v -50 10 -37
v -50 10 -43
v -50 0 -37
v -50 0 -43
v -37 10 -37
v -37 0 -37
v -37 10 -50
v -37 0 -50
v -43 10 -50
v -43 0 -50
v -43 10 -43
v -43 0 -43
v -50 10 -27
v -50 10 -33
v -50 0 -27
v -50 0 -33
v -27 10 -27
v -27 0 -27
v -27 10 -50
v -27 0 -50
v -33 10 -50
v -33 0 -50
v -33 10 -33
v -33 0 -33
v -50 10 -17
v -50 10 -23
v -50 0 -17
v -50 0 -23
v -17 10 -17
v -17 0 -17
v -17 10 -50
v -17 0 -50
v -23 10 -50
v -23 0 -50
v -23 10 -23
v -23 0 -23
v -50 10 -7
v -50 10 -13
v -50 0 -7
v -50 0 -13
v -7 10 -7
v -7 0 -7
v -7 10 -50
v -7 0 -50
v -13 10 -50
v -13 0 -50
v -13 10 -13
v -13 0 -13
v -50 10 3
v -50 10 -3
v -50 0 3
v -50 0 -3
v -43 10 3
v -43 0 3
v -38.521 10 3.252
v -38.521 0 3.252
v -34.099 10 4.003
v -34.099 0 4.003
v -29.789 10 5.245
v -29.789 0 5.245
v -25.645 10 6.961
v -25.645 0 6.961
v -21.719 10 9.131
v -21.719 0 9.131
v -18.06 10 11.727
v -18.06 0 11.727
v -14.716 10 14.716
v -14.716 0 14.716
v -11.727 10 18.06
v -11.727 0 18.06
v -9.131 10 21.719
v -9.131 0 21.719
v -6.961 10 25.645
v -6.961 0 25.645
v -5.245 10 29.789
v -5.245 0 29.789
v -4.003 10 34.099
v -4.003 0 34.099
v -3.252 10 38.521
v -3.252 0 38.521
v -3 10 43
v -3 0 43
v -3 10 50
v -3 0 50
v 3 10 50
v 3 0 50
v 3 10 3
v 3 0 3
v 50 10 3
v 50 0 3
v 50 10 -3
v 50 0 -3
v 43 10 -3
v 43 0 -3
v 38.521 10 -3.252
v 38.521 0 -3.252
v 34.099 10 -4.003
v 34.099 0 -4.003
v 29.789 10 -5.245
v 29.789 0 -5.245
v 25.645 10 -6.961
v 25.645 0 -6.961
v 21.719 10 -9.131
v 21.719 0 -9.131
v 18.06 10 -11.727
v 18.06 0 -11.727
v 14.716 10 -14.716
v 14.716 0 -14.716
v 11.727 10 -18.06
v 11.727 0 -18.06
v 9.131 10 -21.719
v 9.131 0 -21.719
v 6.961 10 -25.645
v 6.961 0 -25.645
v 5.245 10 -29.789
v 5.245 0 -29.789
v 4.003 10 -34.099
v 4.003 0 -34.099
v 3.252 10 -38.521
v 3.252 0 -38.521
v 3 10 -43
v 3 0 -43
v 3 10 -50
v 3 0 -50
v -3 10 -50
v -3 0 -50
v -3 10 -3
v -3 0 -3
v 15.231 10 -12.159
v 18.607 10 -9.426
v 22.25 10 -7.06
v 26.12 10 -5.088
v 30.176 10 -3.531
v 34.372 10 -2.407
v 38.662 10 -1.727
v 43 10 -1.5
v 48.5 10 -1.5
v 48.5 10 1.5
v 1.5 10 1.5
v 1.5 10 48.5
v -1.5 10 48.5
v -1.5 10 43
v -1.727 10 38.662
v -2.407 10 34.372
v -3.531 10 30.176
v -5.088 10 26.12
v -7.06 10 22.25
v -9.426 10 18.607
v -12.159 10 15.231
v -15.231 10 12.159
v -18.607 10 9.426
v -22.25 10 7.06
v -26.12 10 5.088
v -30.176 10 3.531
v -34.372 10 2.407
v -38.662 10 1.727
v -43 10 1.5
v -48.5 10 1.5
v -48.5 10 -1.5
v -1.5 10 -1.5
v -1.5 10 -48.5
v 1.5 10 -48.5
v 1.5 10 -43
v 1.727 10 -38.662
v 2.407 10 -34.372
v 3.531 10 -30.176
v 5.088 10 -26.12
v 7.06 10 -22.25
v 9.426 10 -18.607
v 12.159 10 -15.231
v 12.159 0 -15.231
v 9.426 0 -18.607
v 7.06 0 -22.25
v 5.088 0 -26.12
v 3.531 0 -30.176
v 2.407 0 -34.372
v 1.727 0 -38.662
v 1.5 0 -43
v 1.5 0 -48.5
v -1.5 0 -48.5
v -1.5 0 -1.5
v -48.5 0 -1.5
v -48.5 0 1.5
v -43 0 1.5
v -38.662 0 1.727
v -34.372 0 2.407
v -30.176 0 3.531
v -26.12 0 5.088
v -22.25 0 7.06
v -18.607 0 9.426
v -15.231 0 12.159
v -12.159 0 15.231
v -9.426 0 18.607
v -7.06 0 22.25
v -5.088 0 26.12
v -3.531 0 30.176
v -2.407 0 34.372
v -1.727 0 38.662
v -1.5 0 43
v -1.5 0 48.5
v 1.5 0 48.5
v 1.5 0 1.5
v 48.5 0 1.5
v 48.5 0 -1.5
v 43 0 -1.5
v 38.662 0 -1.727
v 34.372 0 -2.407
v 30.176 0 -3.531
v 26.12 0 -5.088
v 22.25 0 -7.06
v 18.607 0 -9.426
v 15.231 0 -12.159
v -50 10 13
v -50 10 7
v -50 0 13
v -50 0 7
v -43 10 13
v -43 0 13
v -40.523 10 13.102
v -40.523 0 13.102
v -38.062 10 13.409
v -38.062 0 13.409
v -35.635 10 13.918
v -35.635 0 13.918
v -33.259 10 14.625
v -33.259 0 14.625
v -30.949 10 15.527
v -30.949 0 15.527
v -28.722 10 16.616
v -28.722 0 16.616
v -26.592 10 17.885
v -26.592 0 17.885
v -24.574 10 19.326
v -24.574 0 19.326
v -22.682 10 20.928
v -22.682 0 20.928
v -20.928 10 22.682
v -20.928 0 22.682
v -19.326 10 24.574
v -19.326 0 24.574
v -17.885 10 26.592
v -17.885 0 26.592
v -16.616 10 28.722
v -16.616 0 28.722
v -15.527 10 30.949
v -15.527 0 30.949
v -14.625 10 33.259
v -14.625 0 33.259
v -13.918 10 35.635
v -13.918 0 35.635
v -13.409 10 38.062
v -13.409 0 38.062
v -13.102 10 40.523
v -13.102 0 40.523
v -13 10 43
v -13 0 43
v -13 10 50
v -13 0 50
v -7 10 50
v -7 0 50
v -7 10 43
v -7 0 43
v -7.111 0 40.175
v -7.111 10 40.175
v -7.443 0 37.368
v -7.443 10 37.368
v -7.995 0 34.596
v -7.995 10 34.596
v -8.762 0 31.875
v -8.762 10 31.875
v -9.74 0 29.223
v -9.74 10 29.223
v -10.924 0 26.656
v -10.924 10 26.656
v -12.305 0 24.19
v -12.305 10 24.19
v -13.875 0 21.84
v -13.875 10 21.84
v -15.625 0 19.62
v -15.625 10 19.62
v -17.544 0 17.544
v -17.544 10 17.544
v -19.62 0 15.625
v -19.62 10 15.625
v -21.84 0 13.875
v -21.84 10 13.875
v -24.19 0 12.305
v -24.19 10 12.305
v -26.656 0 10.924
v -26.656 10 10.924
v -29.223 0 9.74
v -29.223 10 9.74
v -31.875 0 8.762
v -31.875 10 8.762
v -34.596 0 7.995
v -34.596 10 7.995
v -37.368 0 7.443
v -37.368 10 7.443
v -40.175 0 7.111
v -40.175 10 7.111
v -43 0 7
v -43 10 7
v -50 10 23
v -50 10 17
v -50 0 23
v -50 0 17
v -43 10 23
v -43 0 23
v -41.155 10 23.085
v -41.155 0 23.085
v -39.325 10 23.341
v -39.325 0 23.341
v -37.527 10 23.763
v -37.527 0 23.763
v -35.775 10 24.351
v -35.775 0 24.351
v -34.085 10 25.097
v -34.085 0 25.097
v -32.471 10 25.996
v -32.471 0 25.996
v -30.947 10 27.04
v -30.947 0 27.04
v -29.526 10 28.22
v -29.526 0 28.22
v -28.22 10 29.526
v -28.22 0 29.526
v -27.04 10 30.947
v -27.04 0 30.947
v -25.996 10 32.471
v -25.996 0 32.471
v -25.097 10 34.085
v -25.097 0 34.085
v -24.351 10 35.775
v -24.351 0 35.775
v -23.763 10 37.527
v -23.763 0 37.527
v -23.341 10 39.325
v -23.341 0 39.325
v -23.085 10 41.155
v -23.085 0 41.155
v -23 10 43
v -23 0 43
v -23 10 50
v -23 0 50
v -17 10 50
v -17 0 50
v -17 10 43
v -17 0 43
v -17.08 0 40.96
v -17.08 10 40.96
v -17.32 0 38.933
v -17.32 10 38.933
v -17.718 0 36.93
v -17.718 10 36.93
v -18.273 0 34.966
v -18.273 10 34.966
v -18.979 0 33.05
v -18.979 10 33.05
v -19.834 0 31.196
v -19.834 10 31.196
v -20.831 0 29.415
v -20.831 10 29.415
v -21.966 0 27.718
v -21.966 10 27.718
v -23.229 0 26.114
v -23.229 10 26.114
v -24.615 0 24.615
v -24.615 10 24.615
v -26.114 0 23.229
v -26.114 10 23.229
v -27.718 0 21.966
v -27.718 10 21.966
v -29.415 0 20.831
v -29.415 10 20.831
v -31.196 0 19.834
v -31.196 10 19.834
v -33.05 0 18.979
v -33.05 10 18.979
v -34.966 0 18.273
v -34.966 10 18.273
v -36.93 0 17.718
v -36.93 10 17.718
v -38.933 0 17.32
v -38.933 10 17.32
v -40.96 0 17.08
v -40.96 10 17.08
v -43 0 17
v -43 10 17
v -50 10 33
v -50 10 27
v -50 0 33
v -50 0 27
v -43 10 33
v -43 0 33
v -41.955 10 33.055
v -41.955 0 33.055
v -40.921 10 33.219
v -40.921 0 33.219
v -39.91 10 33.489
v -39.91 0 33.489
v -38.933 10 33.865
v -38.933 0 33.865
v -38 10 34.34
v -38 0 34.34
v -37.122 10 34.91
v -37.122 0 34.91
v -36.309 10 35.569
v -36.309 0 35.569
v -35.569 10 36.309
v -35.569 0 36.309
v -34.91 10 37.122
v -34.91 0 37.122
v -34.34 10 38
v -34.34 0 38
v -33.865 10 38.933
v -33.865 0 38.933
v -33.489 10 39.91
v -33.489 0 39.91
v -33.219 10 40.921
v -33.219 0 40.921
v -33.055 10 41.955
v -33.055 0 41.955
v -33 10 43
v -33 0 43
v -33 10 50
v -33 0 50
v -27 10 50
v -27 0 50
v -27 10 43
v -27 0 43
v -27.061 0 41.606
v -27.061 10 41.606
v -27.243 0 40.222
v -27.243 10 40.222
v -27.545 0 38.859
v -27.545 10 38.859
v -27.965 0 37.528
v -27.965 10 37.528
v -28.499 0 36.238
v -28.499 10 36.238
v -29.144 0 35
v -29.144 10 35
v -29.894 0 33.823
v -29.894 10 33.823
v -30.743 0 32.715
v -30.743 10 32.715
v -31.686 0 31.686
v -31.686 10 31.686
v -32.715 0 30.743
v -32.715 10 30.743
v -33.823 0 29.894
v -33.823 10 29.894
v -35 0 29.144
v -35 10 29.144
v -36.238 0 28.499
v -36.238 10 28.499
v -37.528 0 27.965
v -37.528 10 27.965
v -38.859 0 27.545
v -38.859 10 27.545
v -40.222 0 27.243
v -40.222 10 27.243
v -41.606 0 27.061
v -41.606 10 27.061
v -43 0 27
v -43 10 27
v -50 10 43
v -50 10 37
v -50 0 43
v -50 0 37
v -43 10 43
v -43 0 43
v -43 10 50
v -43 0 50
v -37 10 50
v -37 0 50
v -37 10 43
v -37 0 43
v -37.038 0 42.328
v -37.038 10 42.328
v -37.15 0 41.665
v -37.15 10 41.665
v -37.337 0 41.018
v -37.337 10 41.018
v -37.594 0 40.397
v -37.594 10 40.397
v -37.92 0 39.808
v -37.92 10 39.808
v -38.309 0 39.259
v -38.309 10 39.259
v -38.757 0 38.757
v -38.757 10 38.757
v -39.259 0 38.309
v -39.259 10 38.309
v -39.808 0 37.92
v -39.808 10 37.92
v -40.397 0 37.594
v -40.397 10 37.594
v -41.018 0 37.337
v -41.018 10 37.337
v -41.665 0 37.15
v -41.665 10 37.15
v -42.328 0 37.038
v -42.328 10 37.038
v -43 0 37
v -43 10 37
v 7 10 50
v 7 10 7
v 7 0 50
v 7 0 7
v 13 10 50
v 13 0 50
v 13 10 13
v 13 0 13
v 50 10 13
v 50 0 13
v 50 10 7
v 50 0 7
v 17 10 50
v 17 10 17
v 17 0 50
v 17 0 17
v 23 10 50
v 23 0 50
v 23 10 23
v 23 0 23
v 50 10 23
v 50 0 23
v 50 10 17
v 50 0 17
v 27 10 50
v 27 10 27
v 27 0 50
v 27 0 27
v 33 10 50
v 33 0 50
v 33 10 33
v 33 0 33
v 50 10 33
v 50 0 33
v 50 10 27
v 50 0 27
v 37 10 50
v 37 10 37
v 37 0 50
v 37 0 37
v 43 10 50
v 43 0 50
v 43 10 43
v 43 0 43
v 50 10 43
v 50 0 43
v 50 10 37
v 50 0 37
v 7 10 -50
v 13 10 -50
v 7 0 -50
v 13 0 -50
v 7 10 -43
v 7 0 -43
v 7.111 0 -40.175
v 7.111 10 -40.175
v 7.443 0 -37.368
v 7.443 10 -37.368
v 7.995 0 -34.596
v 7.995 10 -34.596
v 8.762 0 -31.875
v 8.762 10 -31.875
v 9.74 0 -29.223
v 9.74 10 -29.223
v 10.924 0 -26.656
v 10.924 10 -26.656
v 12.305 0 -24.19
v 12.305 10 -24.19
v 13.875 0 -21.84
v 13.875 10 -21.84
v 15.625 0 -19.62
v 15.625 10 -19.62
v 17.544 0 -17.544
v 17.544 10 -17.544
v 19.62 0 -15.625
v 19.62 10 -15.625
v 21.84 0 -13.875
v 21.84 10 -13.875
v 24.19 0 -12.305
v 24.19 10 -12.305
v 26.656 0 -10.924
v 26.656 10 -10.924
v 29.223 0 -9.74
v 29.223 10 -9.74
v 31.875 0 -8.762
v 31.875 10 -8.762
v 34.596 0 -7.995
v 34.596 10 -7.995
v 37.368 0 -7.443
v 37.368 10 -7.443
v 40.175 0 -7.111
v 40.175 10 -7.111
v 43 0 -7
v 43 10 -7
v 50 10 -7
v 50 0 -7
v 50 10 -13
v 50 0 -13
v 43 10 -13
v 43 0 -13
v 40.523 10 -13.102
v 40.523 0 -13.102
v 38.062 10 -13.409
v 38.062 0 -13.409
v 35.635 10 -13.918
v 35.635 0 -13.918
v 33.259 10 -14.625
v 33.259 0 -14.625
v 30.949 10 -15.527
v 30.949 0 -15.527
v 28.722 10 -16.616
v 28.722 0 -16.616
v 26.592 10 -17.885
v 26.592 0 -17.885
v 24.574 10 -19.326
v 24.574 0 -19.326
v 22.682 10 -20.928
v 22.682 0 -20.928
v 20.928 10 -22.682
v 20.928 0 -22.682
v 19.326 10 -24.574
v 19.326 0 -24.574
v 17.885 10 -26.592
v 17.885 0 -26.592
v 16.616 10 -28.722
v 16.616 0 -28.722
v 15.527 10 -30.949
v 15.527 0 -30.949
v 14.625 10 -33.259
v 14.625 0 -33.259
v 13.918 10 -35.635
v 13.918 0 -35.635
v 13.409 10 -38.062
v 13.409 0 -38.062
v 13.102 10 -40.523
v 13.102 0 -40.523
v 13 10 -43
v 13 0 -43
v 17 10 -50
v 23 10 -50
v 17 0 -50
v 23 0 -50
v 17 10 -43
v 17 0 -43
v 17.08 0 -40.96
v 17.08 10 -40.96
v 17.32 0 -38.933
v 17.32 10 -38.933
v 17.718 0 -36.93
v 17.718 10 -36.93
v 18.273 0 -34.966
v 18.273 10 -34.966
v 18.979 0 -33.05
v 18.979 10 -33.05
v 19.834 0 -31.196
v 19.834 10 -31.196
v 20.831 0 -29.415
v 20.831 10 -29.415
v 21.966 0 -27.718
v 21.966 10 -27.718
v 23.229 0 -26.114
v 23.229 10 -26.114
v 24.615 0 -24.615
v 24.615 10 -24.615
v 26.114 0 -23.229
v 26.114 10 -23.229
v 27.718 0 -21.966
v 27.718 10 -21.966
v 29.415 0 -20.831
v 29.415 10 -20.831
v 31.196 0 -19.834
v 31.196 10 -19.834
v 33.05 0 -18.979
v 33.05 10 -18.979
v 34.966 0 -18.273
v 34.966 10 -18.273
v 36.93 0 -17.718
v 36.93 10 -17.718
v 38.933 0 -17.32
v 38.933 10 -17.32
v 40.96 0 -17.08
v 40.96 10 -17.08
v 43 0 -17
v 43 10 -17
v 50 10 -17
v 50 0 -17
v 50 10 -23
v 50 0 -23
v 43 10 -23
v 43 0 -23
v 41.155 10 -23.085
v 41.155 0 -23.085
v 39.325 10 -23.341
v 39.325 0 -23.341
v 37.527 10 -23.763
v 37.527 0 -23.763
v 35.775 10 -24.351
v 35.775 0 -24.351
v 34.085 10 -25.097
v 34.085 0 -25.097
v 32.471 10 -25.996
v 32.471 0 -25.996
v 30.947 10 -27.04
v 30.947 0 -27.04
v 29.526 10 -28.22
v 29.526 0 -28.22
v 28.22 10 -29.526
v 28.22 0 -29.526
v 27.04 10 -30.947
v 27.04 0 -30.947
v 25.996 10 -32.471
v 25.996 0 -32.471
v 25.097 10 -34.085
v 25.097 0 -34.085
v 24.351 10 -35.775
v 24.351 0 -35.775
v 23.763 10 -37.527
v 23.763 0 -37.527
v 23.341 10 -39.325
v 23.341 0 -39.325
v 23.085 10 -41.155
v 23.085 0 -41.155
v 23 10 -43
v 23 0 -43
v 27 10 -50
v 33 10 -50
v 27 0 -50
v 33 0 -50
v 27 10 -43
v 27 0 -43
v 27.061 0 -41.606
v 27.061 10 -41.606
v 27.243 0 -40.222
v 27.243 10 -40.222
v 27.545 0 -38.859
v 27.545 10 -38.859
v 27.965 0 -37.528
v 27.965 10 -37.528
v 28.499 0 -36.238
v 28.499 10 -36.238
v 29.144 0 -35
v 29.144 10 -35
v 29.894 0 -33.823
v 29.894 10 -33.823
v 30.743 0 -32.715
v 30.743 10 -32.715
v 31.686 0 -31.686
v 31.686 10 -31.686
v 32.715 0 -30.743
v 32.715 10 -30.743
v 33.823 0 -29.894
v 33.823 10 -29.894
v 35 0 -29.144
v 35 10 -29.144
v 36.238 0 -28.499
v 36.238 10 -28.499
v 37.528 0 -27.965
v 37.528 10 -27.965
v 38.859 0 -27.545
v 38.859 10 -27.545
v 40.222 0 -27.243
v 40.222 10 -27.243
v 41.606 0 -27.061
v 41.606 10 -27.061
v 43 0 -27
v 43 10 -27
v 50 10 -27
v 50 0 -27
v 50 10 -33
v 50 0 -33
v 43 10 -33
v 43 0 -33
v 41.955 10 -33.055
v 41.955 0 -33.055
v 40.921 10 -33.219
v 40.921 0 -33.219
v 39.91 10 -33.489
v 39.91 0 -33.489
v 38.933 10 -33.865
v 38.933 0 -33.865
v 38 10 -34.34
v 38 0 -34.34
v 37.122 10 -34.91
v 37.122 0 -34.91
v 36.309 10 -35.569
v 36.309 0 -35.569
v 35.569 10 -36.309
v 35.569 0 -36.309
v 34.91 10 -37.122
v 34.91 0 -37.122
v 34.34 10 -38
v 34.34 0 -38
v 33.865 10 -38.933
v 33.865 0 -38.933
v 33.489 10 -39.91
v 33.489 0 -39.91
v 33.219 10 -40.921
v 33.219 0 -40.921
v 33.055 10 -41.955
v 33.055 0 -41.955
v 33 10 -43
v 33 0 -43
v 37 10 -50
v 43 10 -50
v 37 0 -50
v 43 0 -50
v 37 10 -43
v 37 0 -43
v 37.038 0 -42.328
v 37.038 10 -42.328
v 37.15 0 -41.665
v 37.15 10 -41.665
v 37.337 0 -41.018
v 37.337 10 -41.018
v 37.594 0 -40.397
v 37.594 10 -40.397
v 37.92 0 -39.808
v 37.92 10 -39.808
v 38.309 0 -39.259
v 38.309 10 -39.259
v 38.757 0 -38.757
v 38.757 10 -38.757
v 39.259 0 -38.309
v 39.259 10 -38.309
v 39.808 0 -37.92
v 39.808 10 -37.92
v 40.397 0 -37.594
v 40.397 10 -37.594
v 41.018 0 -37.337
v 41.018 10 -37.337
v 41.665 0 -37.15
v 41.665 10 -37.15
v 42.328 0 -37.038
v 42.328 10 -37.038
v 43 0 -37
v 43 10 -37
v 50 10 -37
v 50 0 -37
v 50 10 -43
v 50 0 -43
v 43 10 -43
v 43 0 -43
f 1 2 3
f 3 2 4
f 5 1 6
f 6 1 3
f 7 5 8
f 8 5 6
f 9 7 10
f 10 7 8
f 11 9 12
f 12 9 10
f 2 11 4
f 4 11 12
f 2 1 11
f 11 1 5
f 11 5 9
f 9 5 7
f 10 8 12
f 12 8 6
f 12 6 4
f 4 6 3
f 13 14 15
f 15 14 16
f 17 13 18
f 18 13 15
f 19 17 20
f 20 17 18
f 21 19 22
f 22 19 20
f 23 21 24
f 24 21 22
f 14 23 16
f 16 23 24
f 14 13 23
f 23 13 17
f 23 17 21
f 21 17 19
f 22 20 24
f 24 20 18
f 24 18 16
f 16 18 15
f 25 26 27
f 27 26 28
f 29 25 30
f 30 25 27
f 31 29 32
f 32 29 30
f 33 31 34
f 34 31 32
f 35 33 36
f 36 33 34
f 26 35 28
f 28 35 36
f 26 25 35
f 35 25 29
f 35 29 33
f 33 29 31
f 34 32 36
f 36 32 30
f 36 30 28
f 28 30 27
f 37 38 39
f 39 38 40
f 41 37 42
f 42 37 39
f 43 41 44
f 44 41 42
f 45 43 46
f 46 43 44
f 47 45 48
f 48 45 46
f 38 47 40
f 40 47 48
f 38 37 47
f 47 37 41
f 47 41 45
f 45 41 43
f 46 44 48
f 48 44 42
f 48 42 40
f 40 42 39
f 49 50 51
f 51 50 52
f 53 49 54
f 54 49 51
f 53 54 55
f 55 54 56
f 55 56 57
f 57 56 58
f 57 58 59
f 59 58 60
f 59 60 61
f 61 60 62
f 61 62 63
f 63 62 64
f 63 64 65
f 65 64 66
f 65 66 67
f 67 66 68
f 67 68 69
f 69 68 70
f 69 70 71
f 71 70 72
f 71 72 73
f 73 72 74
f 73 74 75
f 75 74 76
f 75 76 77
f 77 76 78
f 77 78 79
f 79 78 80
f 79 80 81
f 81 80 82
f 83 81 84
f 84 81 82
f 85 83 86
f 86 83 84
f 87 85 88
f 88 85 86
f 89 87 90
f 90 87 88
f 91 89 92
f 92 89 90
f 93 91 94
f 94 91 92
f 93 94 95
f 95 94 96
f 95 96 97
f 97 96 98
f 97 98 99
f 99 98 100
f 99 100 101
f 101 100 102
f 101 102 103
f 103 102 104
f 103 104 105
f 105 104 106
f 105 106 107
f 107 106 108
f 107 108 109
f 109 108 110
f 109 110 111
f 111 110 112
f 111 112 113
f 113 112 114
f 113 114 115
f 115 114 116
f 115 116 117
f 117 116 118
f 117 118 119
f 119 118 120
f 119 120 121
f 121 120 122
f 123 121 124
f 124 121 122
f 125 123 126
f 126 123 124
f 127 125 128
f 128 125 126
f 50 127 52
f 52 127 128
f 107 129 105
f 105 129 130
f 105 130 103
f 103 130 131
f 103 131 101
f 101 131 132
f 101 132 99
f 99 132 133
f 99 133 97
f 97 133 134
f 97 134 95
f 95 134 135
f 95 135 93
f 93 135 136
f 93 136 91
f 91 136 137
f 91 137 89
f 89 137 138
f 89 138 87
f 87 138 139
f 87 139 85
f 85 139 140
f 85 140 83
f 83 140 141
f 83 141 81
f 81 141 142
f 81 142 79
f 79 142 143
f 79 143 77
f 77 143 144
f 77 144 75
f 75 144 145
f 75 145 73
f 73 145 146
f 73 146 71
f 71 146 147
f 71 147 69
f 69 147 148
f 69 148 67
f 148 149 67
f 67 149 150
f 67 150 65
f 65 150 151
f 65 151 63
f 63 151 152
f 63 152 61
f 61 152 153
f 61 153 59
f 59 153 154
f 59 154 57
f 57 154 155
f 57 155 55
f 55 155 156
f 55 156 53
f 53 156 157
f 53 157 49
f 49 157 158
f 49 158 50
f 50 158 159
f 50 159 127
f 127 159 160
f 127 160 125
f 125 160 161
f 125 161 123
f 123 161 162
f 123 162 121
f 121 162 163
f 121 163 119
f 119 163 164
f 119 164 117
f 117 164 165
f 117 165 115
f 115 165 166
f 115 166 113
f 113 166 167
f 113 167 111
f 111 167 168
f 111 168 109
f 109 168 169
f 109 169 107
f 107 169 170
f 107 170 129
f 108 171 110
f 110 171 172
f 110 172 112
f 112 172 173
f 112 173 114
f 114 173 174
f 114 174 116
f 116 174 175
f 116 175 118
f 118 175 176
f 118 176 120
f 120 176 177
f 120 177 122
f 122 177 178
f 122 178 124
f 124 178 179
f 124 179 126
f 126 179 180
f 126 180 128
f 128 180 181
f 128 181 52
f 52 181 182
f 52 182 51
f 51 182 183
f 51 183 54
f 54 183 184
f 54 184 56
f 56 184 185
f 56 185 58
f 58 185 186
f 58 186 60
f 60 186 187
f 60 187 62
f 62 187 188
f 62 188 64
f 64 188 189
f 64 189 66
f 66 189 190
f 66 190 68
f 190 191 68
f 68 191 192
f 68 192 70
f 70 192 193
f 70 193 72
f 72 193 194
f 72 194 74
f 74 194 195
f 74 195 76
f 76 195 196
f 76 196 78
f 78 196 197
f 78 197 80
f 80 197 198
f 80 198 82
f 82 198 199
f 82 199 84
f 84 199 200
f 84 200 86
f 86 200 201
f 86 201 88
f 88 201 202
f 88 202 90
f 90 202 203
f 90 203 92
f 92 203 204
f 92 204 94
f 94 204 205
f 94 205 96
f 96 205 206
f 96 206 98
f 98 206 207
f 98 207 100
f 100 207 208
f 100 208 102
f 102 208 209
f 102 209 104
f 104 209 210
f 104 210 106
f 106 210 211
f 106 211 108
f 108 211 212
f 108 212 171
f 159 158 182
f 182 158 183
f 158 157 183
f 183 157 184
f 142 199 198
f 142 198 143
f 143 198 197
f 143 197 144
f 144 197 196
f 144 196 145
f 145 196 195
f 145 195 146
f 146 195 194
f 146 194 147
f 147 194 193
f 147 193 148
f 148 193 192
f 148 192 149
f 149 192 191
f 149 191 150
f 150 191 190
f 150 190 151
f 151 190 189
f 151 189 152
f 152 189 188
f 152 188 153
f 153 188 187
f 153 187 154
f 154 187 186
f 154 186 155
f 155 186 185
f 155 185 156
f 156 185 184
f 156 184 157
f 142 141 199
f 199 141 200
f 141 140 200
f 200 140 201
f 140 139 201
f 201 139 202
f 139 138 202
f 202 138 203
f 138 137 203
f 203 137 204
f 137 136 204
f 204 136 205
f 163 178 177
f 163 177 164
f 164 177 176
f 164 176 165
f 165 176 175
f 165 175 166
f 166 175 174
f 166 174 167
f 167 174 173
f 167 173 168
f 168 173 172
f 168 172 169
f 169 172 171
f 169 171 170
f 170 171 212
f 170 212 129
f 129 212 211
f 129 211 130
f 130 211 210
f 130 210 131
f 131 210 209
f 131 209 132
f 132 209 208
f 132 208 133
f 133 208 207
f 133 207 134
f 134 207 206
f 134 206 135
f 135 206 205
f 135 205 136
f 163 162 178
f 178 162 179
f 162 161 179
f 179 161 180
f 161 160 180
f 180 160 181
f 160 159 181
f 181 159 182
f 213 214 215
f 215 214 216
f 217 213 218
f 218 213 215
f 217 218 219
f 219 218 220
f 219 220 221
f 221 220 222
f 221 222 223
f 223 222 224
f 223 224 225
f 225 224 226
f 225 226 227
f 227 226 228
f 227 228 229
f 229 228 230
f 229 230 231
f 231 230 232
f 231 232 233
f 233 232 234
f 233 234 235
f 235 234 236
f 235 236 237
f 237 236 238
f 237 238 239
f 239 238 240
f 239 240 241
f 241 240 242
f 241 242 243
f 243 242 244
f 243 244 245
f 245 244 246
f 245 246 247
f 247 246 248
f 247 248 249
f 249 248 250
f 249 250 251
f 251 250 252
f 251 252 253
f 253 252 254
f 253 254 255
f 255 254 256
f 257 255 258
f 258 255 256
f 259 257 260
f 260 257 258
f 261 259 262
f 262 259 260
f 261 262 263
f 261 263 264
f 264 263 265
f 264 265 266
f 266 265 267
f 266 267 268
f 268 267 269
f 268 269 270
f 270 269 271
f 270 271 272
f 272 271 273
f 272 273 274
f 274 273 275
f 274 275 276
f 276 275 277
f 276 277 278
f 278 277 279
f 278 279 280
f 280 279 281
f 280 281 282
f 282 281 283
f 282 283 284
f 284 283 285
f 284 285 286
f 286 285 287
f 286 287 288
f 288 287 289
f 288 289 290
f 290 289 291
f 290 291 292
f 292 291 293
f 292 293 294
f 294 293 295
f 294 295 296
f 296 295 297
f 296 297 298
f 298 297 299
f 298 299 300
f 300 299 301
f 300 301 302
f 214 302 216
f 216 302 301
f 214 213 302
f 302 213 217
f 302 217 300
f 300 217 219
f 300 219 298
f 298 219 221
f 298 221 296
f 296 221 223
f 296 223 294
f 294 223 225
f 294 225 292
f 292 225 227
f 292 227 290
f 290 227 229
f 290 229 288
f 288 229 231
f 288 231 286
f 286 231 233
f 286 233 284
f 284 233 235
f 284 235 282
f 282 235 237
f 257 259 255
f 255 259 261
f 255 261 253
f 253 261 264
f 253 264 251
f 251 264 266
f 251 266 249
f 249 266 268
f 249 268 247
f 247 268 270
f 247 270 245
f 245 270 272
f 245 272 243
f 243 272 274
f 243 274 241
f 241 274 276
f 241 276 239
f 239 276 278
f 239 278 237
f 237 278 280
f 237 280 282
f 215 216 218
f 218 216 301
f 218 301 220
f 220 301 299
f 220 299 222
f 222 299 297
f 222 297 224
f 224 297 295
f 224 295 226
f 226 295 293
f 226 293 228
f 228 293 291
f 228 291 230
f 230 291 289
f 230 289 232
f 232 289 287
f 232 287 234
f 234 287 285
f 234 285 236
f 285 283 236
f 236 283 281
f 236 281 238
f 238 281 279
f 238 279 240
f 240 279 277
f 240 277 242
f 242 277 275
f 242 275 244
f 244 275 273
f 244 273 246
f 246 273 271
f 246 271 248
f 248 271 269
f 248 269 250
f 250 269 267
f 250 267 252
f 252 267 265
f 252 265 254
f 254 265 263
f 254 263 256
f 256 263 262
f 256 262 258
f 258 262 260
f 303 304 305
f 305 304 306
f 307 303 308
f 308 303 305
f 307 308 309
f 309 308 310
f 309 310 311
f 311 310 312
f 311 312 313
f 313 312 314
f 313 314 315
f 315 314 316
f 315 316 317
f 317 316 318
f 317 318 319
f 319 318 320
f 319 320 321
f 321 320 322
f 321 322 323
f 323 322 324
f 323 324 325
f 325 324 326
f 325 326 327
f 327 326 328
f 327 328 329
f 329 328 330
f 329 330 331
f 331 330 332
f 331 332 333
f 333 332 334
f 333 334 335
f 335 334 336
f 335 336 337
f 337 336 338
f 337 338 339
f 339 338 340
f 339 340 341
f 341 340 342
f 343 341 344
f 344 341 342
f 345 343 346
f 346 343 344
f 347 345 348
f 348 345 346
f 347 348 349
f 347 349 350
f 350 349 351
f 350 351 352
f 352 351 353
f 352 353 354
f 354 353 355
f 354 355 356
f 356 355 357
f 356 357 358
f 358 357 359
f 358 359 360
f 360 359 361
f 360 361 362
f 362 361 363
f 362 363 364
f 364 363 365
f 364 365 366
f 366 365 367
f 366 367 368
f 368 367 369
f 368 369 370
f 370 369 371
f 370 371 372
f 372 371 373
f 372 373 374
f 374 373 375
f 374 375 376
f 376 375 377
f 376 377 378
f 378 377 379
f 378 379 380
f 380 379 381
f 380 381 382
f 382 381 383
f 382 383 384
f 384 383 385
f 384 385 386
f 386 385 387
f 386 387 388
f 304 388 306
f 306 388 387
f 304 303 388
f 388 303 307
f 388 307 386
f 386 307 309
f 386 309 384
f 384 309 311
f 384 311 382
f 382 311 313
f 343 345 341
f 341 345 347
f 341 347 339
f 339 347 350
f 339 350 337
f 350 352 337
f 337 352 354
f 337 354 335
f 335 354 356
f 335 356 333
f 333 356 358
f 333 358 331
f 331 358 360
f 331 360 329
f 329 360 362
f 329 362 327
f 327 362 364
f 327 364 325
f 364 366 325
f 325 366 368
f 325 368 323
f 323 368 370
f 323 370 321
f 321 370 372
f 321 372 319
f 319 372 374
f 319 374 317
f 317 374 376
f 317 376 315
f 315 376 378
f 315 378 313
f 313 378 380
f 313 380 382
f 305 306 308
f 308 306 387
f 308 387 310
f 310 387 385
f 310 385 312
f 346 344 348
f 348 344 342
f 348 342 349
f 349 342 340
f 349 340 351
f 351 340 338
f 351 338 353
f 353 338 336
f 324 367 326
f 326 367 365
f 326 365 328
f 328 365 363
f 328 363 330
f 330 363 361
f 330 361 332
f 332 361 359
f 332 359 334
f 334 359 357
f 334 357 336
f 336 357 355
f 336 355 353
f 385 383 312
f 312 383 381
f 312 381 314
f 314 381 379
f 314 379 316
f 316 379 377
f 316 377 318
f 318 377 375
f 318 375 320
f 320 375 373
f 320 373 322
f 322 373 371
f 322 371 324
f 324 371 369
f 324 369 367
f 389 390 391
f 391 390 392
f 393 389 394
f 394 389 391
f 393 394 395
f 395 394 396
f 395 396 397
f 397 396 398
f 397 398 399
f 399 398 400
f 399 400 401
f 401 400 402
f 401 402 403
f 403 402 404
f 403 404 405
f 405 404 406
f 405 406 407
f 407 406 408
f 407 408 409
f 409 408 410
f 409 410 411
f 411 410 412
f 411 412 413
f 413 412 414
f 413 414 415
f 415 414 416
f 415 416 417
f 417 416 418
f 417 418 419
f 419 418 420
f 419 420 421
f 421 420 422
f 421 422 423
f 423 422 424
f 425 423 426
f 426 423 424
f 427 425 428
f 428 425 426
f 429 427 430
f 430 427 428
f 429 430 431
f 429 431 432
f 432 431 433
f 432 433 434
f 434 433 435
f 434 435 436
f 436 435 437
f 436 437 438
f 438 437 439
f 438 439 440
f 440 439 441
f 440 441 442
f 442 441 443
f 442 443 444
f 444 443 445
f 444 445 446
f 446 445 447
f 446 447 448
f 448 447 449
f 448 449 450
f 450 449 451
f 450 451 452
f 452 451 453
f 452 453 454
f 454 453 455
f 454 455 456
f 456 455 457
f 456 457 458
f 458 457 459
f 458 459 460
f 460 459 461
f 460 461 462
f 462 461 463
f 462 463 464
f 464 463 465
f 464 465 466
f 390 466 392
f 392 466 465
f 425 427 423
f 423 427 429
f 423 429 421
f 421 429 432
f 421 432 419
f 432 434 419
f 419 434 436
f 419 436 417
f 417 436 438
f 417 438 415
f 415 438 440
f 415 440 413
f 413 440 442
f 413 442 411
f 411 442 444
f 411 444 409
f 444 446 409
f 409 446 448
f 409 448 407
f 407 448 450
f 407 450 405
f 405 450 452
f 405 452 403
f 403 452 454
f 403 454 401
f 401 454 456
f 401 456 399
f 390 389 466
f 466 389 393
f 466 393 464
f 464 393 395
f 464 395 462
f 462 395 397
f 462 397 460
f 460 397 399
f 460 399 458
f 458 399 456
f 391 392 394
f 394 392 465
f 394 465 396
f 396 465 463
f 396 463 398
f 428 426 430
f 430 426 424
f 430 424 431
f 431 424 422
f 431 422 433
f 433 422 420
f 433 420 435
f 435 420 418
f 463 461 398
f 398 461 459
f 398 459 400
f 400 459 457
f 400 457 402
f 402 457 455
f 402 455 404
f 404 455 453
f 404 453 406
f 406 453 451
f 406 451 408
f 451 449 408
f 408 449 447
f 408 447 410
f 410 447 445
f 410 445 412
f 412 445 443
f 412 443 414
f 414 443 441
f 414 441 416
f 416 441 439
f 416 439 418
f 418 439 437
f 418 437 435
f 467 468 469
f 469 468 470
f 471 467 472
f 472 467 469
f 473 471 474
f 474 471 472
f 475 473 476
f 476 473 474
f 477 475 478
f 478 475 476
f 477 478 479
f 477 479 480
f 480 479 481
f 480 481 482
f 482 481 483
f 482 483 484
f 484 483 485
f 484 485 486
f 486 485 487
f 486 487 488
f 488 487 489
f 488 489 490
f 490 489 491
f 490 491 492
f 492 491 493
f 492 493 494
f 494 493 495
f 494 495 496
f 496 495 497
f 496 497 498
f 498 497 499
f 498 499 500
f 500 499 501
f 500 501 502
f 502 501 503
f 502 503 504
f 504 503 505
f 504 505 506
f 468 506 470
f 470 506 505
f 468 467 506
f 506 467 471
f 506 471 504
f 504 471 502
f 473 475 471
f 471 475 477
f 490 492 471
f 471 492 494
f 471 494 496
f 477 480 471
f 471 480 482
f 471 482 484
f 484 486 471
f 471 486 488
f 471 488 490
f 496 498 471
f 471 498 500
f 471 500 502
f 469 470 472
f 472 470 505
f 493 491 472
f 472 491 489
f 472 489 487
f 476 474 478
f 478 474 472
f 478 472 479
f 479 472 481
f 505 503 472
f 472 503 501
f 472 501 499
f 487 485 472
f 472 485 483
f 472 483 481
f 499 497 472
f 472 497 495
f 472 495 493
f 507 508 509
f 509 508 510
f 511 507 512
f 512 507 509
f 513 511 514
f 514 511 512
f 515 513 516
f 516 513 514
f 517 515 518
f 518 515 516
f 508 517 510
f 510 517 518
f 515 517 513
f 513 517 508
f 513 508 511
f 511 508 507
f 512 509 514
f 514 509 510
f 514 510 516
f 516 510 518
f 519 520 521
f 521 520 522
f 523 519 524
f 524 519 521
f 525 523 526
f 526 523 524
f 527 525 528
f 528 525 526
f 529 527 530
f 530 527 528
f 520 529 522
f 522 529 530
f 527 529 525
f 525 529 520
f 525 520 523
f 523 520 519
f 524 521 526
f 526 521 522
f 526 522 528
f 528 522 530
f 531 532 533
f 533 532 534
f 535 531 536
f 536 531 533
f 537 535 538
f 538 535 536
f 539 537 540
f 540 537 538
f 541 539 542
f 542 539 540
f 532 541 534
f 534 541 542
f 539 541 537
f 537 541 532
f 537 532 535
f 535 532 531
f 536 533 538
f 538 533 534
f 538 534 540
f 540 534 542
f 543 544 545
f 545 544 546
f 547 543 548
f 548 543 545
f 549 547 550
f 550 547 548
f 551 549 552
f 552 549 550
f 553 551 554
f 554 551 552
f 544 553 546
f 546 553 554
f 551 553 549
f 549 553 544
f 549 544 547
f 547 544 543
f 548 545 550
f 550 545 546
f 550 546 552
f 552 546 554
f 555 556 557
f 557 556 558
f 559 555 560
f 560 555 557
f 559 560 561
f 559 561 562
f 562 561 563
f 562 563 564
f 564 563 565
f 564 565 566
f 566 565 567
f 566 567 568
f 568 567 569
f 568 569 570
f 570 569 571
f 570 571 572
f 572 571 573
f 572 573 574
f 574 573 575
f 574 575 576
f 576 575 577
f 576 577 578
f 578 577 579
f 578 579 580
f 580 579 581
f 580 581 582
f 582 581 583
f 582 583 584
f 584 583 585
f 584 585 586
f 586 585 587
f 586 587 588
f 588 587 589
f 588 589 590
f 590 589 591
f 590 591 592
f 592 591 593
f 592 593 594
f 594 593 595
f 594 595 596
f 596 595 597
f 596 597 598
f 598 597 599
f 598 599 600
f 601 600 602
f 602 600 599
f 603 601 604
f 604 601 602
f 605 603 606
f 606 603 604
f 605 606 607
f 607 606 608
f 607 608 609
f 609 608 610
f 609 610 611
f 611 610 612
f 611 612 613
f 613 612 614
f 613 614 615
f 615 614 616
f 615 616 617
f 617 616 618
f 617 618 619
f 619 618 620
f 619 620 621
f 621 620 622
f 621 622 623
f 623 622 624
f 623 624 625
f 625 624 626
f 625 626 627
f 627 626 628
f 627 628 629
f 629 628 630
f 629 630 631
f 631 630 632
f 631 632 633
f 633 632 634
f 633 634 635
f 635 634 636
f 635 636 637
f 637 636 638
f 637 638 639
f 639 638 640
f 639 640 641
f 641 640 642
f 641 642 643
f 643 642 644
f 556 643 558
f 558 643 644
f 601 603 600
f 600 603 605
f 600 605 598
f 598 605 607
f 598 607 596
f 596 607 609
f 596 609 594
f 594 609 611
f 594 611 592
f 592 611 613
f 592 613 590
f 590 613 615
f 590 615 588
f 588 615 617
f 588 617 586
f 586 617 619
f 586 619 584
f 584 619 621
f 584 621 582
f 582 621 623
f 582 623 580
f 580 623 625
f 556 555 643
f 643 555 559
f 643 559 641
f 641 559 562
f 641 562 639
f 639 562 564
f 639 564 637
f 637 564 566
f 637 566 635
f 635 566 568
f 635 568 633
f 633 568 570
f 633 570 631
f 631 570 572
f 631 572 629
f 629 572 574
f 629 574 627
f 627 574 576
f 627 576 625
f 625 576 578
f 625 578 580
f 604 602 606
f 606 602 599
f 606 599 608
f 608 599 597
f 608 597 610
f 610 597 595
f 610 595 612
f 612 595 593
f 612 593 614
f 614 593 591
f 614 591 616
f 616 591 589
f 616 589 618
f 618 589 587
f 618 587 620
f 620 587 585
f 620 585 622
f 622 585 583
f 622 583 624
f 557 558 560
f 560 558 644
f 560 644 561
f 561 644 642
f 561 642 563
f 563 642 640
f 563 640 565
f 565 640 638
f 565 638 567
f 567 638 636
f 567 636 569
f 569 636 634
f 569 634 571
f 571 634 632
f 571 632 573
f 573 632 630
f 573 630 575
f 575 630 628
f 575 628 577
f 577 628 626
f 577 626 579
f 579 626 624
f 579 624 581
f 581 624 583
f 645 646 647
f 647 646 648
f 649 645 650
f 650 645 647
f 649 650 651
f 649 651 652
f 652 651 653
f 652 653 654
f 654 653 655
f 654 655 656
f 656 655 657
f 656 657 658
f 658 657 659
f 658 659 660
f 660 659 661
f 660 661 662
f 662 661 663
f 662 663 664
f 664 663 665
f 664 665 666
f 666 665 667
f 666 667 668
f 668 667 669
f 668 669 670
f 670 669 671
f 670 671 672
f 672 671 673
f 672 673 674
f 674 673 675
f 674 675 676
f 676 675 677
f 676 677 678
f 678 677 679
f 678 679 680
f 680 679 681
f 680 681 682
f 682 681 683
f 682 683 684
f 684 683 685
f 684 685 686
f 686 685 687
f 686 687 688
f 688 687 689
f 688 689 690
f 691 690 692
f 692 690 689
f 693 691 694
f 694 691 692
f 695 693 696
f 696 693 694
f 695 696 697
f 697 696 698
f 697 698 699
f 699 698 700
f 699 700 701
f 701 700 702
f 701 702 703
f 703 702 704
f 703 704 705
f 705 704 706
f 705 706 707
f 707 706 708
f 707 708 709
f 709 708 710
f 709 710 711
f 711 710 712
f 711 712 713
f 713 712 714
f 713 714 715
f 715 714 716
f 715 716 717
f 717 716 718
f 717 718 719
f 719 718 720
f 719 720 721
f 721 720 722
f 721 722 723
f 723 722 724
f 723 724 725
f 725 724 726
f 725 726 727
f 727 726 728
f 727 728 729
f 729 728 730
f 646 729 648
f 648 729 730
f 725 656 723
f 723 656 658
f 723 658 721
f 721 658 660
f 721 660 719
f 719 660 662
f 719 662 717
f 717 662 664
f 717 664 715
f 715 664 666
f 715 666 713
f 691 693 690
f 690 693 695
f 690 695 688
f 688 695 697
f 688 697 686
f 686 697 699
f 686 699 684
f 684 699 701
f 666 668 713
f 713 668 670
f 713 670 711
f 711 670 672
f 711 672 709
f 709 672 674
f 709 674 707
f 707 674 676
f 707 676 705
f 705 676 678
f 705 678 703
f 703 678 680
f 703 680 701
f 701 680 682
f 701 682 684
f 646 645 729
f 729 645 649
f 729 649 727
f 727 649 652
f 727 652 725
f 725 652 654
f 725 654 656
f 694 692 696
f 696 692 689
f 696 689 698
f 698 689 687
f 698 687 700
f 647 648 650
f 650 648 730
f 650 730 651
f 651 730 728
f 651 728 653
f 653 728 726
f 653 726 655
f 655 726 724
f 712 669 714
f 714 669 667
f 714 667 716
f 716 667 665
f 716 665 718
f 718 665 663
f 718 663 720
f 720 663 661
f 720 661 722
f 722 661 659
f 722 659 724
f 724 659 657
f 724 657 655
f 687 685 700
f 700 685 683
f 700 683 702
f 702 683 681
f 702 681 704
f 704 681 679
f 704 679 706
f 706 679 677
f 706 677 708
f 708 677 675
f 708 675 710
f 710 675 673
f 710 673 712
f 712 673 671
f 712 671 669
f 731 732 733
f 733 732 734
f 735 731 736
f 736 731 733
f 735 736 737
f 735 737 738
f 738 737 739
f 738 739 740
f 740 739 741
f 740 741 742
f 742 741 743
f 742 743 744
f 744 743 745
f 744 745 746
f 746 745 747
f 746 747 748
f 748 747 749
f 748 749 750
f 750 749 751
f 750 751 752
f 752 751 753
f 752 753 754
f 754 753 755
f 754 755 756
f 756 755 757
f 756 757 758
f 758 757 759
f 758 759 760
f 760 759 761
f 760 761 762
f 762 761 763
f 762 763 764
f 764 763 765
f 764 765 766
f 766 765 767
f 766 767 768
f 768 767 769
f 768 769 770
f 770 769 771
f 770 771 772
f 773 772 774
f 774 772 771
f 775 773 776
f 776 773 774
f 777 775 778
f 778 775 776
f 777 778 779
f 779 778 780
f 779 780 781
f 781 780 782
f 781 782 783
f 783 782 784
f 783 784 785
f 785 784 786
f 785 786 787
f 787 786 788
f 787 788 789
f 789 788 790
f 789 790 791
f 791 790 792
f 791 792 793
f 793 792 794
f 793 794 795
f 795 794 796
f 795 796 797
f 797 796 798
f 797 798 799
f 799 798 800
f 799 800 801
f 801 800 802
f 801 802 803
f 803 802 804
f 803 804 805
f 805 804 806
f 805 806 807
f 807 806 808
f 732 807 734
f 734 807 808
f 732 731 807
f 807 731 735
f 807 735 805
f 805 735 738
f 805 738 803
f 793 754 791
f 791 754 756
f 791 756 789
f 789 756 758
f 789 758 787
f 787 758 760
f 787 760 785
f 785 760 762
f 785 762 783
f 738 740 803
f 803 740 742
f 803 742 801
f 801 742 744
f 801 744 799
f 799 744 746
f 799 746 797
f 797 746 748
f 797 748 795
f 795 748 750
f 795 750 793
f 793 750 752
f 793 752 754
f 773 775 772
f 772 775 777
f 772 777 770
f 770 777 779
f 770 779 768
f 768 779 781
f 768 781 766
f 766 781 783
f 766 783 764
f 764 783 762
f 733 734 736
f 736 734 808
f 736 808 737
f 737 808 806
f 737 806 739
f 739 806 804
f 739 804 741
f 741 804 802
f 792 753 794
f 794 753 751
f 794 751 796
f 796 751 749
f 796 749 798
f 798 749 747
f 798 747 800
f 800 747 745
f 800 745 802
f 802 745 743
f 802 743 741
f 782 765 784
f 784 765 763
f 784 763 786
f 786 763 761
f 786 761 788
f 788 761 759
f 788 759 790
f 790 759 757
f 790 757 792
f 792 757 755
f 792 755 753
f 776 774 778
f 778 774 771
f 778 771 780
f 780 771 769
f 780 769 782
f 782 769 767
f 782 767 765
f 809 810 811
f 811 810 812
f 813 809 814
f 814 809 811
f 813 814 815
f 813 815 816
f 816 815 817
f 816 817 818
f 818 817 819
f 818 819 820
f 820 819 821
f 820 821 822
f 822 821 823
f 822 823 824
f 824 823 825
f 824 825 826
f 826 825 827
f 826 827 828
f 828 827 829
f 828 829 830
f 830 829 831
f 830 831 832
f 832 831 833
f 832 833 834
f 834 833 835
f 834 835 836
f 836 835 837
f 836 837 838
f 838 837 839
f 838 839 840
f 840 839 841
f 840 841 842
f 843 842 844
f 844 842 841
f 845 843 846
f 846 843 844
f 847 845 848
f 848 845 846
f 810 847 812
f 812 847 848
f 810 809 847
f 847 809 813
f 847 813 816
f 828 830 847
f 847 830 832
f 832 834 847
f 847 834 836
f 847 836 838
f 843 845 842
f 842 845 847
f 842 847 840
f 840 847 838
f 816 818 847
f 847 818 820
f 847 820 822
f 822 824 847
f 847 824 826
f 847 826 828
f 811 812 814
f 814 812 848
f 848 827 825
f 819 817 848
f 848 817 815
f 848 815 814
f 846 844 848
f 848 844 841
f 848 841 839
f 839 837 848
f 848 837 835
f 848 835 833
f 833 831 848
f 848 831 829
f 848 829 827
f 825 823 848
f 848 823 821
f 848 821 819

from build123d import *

# Parameters (mm, degrees)
BOSS_EXTRUDE1_DEPTH    = 10
BOSS_EXTRUDE1_2_DEPTH  = 10
BOSS_EXTRUDE1_3_DEPTH  = 10
BOSS_EXTRUDE1_4_DEPTH  = 10
BOSS_EXTRUDE1_5_DEPTH  = 10
BOSS_EXTRUDE1_6_DEPTH  = 10
BOSS_EXTRUDE1_7_DEPTH  = 10
BOSS_EXTRUDE1_8_DEPTH  = 10
BOSS_EXTRUDE1_9_DEPTH  = 10
BOSS_EXTRUDE1_10_DEPTH = 10
BOSS_EXTRUDE1_11_DEPTH = 10
BOSS_EXTRUDE1_12_DEPTH = 10
BOSS_EXTRUDE1_13_DEPTH = 10
BOSS_EXTRUDE1_14_DEPTH = 10
BOSS_EXTRUDE1_15_DEPTH = 10
BOSS_EXTRUDE1_16_DEPTH = 10
BOSS_EXTRUDE1_17_DEPTH = 10
SHELL1_T               = -1.5


with BuildPart() as part:
    # Sketch1 → Boss-Extrude1 (new body)
    with BuildSketch(Plane(origin=(0, 0, 0), x_dir=(1, 0, 0), z_dir=(0, 1, 0))):
        Polygon((-50, 37), (-37, 37), (-37, 50), (-43, 50), (-43, 43), (-50, 43), align=None)
    extrude(amount=BOSS_EXTRUDE1_DEPTH)


with BuildPart() as body_2:
    # Sketch1 → Boss-Extrude1 2 (new body)
    with BuildSketch(Plane(origin=(0, 0, 0), x_dir=(1, 0, 0), z_dir=(0, 1, 0))):
        Polygon((-50, 27), (-27, 27), (-27, 50), (-33, 50), (-33, 33), (-50, 33), align=None)
    extrude(amount=BOSS_EXTRUDE1_2_DEPTH)


with BuildPart() as body_3:
    # Sketch1 → Boss-Extrude1 3 (new body)
    with BuildSketch(Plane(origin=(0, 0, 0), x_dir=(1, 0, 0), z_dir=(0, 1, 0))):
        Polygon((-50, 17), (-17, 17), (-17, 50), (-23, 50), (-23, 23), (-50, 23), align=None)
    extrude(amount=BOSS_EXTRUDE1_3_DEPTH)


with BuildPart() as body_4:
    # Sketch1 → Boss-Extrude1 4 (new body)
    with BuildSketch(Plane(origin=(0, 0, 0), x_dir=(1, 0, 0), z_dir=(0, 1, 0))):
        Polygon((-50, 7), (-7, 7), (-7, 50), (-13, 50), (-13, 13), (-50, 13), align=None)
    extrude(amount=BOSS_EXTRUDE1_4_DEPTH)


with BuildPart() as body_5:
    # Sketch1 → Boss-Extrude1 5 (new body)
    with BuildSketch(Plane(origin=(0, 0, 0), x_dir=(1, 0, 0), z_dir=(0, 1, 0))):
        with BuildLine():
            Line((-50, -3), (-43, -3))
            ThreePointArc((-43, -3), (-14.715728753, -14.715728753), (-3, -43))
            Line((-3, -43), (-3, -50))
            Line((-3, -50), (3, -50))
            Line((3, -50), (3, -3))
            Line((3, -3), (50, -3))
            Line((50, -3), (50, 3))
            Line((50, 3), (43, 3))
            ThreePointArc((43, 3), (14.715728753, 14.715728753), (3, 43))
            Line((3, 43), (3, 50))
            Line((3, 50), (-3, 50))
            Line((-3, 50), (-3, 3))
            Line((-3, 3), (-50, 3))
            Line((-50, 3), (-50, -3))
        make_face()
    extrude(amount=BOSS_EXTRUDE1_5_DEPTH)

    # Shell1
    shell1_openings = [body_5.faces().sort_by_distance(p)[0] for p in [
        (0, 10, 0),
        (0, 0, 0),
    ]]
    offset(amount=SHELL1_T, openings=shell1_openings, kind=Kind.INTERSECTION)


with BuildPart() as body_6:
    # Sketch1 → Boss-Extrude1 6 (new body)
    with BuildSketch(Plane(origin=(0, 0, 0), x_dir=(1, 0, 0), z_dir=(0, 1, 0))):
        with BuildLine():
            Line((-50, -13), (-43, -13))
            ThreePointArc((-43, -13), (-21.786796564, -21.786796564), (-13, -43))
            Line((-13, -43), (-13, -50))
            Line((-13, -50), (-7, -50))
            Line((-7, -50), (-7, -43))
            ThreePointArc((-7, -43), (-17.544155877, -17.544155877), (-43, -7))
            Line((-43, -7), (-50, -7))
            Line((-50, -7), (-50, -13))
        make_face()
    extrude(amount=BOSS_EXTRUDE1_6_DEPTH)


with BuildPart() as body_7:
    # Sketch1 → Boss-Extrude1 7 (new body)
    with BuildSketch(Plane(origin=(0, 0, 0), x_dir=(1, 0, 0), z_dir=(0, 1, 0))):
        with BuildLine():
            Line((-50, -23), (-43, -23))
            ThreePointArc((-43, -23), (-28.857864376, -28.857864376), (-23, -43))
            Line((-23, -43), (-23, -50))
            Line((-23, -50), (-17, -50))
            Line((-17, -50), (-17, -43))
            ThreePointArc((-17, -43), (-24.615223689, -24.615223689), (-43, -17))
            Line((-43, -17), (-50, -17))
            Line((-50, -17), (-50, -23))
        make_face()
    extrude(amount=BOSS_EXTRUDE1_7_DEPTH)


with BuildPart() as body_8:
    # Sketch1 → Boss-Extrude1 8 (new body)
    with BuildSketch(Plane(origin=(0, 0, 0), x_dir=(1, 0, 0), z_dir=(0, 1, 0))):
        with BuildLine():
            Line((-50, -33), (-43, -33))
            ThreePointArc((-43, -33), (-35.928932188, -35.928932188), (-33, -43))
            Line((-33, -43), (-33, -50))
            Line((-33, -50), (-27, -50))
            Line((-27, -50), (-27, -43))
            ThreePointArc((-27, -43), (-31.686291501, -31.686291501), (-43, -27))
            Line((-43, -27), (-50, -27))
            Line((-50, -27), (-50, -33))
        make_face()
    extrude(amount=BOSS_EXTRUDE1_8_DEPTH)


with BuildPart() as body_9:
    # Sketch1 → Boss-Extrude1 9 (new body)
    with BuildSketch(Plane(origin=(0, 0, 0), x_dir=(1, 0, 0), z_dir=(0, 1, 0))):
        with BuildLine():
            Line((-50, -43), (-43, -43))
            Line((-43, -43), (-43, -50))
            Line((-43, -50), (-37, -50))
            Line((-37, -50), (-37, -43))
            ThreePointArc((-37, -43), (-38.757359313, -38.757359313), (-43, -37))
            Line((-43, -37), (-50, -37))
            Line((-50, -37), (-50, -43))
        make_face()
    extrude(amount=BOSS_EXTRUDE1_9_DEPTH)


with BuildPart() as body_10:
    # Sketch1 → Boss-Extrude1 10 (new body)
    with BuildSketch(Plane(origin=(0, 0, 0), x_dir=(1, 0, 0), z_dir=(0, 1, 0))):
        Polygon((7, -7), (50, -7), (50, -13), (13, -13), (13, -50), (7, -50), align=None)
    extrude(amount=BOSS_EXTRUDE1_10_DEPTH)


with BuildPart() as body_11:
    # Sketch1 → Boss-Extrude1 11 (new body)
    with BuildSketch(Plane(origin=(0, 0, 0), x_dir=(1, 0, 0), z_dir=(0, 1, 0))):
        Polygon((17, -17), (50, -17), (50, -23), (23, -23), (23, -50), (17, -50), align=None)
    extrude(amount=BOSS_EXTRUDE1_11_DEPTH)


with BuildPart() as body_12:
    # Sketch1 → Boss-Extrude1 12 (new body)
    with BuildSketch(Plane(origin=(0, 0, 0), x_dir=(1, 0, 0), z_dir=(0, 1, 0))):
        Polygon((27, -27), (50, -27), (50, -33), (33, -33), (33, -50), (27, -50), align=None)
    extrude(amount=BOSS_EXTRUDE1_12_DEPTH)


with BuildPart() as body_13:
    # Sketch1 → Boss-Extrude1 13 (new body)
    with BuildSketch(Plane(origin=(0, 0, 0), x_dir=(1, 0, 0), z_dir=(0, 1, 0))):
        Polygon((37, -37), (50, -37), (50, -43), (43, -43), (43, -50), (37, -50), align=None)
    extrude(amount=BOSS_EXTRUDE1_13_DEPTH)


with BuildPart() as body_14:
    # Sketch1 → Boss-Extrude1 14 (new body)
    with BuildSketch(Plane(origin=(0, 0, 0), x_dir=(1, 0, 0), z_dir=(0, 1, 0))):
        with BuildLine():
            Line((7, 50), (7, 43))
            ThreePointArc((7, 43), (17.544155877, 17.544155877), (43, 7))
            Line((43, 7), (50, 7))
            Line((50, 7), (50, 13))
            Line((50, 13), (43, 13))
            ThreePointArc((43, 13), (21.786796564, 21.786796564), (13, 43))
            Line((13, 43), (13, 50))
            Line((13, 50), (7, 50))
        make_face()
    extrude(amount=BOSS_EXTRUDE1_14_DEPTH)


with BuildPart() as body_15:
    # Sketch1 → Boss-Extrude1 15 (new body)
    with BuildSketch(Plane(origin=(0, 0, 0), x_dir=(1, 0, 0), z_dir=(0, 1, 0))):
        with BuildLine():
            Line((17, 50), (17, 43))
            ThreePointArc((17, 43), (24.615223689, 24.615223689), (43, 17))
            Line((43, 17), (50, 17))
            Line((50, 17), (50, 23))
            Line((50, 23), (43, 23))
            ThreePointArc((43, 23), (28.857864376, 28.857864376), (23, 43))
            Line((23, 43), (23, 50))
            Line((23, 50), (17, 50))
        make_face()
    extrude(amount=BOSS_EXTRUDE1_15_DEPTH)


with BuildPart() as body_16:
    # Sketch1 → Boss-Extrude1 16 (new body)
    with BuildSketch(Plane(origin=(0, 0, 0), x_dir=(1, 0, 0), z_dir=(0, 1, 0))):
        with BuildLine():
            Line((27, 50), (27, 43))
            ThreePointArc((27, 43), (31.686291501, 31.686291501), (43, 27))
            Line((43, 27), (50, 27))
            Line((50, 27), (50, 33))
            Line((50, 33), (43, 33))
            ThreePointArc((43, 33), (35.928932188, 35.928932188), (33, 43))
            Line((33, 43), (33, 50))
            Line((33, 50), (27, 50))
        make_face()
    extrude(amount=BOSS_EXTRUDE1_16_DEPTH)


with BuildPart() as body_17:
    # Sketch1 → Boss-Extrude1 17 (new body)
    with BuildSketch(Plane(origin=(0, 0, 0), x_dir=(1, 0, 0), z_dir=(0, 1, 0))):
        with BuildLine():
            Line((37, 50), (37, 43))
            ThreePointArc((37, 43), (38.757359313, 38.757359313), (43, 37))
            Line((43, 37), (50, 37))
            Line((50, 37), (50, 43))
            Line((50, 43), (43, 43))
            Line((43, 43), (43, 50))
            Line((43, 50), (37, 50))
        make_face()
    extrude(amount=BOSS_EXTRUDE1_17_DEPTH)


solid = Compound([part.part, body_2.part, body_3.part, body_4.part, body_5.part, body_6.part, body_7.part, body_8.part, body_9.part, body_10.part, body_11.part, body_12.part, body_13.part, body_14.part, body_15.part, body_16.part, body_17.part])
